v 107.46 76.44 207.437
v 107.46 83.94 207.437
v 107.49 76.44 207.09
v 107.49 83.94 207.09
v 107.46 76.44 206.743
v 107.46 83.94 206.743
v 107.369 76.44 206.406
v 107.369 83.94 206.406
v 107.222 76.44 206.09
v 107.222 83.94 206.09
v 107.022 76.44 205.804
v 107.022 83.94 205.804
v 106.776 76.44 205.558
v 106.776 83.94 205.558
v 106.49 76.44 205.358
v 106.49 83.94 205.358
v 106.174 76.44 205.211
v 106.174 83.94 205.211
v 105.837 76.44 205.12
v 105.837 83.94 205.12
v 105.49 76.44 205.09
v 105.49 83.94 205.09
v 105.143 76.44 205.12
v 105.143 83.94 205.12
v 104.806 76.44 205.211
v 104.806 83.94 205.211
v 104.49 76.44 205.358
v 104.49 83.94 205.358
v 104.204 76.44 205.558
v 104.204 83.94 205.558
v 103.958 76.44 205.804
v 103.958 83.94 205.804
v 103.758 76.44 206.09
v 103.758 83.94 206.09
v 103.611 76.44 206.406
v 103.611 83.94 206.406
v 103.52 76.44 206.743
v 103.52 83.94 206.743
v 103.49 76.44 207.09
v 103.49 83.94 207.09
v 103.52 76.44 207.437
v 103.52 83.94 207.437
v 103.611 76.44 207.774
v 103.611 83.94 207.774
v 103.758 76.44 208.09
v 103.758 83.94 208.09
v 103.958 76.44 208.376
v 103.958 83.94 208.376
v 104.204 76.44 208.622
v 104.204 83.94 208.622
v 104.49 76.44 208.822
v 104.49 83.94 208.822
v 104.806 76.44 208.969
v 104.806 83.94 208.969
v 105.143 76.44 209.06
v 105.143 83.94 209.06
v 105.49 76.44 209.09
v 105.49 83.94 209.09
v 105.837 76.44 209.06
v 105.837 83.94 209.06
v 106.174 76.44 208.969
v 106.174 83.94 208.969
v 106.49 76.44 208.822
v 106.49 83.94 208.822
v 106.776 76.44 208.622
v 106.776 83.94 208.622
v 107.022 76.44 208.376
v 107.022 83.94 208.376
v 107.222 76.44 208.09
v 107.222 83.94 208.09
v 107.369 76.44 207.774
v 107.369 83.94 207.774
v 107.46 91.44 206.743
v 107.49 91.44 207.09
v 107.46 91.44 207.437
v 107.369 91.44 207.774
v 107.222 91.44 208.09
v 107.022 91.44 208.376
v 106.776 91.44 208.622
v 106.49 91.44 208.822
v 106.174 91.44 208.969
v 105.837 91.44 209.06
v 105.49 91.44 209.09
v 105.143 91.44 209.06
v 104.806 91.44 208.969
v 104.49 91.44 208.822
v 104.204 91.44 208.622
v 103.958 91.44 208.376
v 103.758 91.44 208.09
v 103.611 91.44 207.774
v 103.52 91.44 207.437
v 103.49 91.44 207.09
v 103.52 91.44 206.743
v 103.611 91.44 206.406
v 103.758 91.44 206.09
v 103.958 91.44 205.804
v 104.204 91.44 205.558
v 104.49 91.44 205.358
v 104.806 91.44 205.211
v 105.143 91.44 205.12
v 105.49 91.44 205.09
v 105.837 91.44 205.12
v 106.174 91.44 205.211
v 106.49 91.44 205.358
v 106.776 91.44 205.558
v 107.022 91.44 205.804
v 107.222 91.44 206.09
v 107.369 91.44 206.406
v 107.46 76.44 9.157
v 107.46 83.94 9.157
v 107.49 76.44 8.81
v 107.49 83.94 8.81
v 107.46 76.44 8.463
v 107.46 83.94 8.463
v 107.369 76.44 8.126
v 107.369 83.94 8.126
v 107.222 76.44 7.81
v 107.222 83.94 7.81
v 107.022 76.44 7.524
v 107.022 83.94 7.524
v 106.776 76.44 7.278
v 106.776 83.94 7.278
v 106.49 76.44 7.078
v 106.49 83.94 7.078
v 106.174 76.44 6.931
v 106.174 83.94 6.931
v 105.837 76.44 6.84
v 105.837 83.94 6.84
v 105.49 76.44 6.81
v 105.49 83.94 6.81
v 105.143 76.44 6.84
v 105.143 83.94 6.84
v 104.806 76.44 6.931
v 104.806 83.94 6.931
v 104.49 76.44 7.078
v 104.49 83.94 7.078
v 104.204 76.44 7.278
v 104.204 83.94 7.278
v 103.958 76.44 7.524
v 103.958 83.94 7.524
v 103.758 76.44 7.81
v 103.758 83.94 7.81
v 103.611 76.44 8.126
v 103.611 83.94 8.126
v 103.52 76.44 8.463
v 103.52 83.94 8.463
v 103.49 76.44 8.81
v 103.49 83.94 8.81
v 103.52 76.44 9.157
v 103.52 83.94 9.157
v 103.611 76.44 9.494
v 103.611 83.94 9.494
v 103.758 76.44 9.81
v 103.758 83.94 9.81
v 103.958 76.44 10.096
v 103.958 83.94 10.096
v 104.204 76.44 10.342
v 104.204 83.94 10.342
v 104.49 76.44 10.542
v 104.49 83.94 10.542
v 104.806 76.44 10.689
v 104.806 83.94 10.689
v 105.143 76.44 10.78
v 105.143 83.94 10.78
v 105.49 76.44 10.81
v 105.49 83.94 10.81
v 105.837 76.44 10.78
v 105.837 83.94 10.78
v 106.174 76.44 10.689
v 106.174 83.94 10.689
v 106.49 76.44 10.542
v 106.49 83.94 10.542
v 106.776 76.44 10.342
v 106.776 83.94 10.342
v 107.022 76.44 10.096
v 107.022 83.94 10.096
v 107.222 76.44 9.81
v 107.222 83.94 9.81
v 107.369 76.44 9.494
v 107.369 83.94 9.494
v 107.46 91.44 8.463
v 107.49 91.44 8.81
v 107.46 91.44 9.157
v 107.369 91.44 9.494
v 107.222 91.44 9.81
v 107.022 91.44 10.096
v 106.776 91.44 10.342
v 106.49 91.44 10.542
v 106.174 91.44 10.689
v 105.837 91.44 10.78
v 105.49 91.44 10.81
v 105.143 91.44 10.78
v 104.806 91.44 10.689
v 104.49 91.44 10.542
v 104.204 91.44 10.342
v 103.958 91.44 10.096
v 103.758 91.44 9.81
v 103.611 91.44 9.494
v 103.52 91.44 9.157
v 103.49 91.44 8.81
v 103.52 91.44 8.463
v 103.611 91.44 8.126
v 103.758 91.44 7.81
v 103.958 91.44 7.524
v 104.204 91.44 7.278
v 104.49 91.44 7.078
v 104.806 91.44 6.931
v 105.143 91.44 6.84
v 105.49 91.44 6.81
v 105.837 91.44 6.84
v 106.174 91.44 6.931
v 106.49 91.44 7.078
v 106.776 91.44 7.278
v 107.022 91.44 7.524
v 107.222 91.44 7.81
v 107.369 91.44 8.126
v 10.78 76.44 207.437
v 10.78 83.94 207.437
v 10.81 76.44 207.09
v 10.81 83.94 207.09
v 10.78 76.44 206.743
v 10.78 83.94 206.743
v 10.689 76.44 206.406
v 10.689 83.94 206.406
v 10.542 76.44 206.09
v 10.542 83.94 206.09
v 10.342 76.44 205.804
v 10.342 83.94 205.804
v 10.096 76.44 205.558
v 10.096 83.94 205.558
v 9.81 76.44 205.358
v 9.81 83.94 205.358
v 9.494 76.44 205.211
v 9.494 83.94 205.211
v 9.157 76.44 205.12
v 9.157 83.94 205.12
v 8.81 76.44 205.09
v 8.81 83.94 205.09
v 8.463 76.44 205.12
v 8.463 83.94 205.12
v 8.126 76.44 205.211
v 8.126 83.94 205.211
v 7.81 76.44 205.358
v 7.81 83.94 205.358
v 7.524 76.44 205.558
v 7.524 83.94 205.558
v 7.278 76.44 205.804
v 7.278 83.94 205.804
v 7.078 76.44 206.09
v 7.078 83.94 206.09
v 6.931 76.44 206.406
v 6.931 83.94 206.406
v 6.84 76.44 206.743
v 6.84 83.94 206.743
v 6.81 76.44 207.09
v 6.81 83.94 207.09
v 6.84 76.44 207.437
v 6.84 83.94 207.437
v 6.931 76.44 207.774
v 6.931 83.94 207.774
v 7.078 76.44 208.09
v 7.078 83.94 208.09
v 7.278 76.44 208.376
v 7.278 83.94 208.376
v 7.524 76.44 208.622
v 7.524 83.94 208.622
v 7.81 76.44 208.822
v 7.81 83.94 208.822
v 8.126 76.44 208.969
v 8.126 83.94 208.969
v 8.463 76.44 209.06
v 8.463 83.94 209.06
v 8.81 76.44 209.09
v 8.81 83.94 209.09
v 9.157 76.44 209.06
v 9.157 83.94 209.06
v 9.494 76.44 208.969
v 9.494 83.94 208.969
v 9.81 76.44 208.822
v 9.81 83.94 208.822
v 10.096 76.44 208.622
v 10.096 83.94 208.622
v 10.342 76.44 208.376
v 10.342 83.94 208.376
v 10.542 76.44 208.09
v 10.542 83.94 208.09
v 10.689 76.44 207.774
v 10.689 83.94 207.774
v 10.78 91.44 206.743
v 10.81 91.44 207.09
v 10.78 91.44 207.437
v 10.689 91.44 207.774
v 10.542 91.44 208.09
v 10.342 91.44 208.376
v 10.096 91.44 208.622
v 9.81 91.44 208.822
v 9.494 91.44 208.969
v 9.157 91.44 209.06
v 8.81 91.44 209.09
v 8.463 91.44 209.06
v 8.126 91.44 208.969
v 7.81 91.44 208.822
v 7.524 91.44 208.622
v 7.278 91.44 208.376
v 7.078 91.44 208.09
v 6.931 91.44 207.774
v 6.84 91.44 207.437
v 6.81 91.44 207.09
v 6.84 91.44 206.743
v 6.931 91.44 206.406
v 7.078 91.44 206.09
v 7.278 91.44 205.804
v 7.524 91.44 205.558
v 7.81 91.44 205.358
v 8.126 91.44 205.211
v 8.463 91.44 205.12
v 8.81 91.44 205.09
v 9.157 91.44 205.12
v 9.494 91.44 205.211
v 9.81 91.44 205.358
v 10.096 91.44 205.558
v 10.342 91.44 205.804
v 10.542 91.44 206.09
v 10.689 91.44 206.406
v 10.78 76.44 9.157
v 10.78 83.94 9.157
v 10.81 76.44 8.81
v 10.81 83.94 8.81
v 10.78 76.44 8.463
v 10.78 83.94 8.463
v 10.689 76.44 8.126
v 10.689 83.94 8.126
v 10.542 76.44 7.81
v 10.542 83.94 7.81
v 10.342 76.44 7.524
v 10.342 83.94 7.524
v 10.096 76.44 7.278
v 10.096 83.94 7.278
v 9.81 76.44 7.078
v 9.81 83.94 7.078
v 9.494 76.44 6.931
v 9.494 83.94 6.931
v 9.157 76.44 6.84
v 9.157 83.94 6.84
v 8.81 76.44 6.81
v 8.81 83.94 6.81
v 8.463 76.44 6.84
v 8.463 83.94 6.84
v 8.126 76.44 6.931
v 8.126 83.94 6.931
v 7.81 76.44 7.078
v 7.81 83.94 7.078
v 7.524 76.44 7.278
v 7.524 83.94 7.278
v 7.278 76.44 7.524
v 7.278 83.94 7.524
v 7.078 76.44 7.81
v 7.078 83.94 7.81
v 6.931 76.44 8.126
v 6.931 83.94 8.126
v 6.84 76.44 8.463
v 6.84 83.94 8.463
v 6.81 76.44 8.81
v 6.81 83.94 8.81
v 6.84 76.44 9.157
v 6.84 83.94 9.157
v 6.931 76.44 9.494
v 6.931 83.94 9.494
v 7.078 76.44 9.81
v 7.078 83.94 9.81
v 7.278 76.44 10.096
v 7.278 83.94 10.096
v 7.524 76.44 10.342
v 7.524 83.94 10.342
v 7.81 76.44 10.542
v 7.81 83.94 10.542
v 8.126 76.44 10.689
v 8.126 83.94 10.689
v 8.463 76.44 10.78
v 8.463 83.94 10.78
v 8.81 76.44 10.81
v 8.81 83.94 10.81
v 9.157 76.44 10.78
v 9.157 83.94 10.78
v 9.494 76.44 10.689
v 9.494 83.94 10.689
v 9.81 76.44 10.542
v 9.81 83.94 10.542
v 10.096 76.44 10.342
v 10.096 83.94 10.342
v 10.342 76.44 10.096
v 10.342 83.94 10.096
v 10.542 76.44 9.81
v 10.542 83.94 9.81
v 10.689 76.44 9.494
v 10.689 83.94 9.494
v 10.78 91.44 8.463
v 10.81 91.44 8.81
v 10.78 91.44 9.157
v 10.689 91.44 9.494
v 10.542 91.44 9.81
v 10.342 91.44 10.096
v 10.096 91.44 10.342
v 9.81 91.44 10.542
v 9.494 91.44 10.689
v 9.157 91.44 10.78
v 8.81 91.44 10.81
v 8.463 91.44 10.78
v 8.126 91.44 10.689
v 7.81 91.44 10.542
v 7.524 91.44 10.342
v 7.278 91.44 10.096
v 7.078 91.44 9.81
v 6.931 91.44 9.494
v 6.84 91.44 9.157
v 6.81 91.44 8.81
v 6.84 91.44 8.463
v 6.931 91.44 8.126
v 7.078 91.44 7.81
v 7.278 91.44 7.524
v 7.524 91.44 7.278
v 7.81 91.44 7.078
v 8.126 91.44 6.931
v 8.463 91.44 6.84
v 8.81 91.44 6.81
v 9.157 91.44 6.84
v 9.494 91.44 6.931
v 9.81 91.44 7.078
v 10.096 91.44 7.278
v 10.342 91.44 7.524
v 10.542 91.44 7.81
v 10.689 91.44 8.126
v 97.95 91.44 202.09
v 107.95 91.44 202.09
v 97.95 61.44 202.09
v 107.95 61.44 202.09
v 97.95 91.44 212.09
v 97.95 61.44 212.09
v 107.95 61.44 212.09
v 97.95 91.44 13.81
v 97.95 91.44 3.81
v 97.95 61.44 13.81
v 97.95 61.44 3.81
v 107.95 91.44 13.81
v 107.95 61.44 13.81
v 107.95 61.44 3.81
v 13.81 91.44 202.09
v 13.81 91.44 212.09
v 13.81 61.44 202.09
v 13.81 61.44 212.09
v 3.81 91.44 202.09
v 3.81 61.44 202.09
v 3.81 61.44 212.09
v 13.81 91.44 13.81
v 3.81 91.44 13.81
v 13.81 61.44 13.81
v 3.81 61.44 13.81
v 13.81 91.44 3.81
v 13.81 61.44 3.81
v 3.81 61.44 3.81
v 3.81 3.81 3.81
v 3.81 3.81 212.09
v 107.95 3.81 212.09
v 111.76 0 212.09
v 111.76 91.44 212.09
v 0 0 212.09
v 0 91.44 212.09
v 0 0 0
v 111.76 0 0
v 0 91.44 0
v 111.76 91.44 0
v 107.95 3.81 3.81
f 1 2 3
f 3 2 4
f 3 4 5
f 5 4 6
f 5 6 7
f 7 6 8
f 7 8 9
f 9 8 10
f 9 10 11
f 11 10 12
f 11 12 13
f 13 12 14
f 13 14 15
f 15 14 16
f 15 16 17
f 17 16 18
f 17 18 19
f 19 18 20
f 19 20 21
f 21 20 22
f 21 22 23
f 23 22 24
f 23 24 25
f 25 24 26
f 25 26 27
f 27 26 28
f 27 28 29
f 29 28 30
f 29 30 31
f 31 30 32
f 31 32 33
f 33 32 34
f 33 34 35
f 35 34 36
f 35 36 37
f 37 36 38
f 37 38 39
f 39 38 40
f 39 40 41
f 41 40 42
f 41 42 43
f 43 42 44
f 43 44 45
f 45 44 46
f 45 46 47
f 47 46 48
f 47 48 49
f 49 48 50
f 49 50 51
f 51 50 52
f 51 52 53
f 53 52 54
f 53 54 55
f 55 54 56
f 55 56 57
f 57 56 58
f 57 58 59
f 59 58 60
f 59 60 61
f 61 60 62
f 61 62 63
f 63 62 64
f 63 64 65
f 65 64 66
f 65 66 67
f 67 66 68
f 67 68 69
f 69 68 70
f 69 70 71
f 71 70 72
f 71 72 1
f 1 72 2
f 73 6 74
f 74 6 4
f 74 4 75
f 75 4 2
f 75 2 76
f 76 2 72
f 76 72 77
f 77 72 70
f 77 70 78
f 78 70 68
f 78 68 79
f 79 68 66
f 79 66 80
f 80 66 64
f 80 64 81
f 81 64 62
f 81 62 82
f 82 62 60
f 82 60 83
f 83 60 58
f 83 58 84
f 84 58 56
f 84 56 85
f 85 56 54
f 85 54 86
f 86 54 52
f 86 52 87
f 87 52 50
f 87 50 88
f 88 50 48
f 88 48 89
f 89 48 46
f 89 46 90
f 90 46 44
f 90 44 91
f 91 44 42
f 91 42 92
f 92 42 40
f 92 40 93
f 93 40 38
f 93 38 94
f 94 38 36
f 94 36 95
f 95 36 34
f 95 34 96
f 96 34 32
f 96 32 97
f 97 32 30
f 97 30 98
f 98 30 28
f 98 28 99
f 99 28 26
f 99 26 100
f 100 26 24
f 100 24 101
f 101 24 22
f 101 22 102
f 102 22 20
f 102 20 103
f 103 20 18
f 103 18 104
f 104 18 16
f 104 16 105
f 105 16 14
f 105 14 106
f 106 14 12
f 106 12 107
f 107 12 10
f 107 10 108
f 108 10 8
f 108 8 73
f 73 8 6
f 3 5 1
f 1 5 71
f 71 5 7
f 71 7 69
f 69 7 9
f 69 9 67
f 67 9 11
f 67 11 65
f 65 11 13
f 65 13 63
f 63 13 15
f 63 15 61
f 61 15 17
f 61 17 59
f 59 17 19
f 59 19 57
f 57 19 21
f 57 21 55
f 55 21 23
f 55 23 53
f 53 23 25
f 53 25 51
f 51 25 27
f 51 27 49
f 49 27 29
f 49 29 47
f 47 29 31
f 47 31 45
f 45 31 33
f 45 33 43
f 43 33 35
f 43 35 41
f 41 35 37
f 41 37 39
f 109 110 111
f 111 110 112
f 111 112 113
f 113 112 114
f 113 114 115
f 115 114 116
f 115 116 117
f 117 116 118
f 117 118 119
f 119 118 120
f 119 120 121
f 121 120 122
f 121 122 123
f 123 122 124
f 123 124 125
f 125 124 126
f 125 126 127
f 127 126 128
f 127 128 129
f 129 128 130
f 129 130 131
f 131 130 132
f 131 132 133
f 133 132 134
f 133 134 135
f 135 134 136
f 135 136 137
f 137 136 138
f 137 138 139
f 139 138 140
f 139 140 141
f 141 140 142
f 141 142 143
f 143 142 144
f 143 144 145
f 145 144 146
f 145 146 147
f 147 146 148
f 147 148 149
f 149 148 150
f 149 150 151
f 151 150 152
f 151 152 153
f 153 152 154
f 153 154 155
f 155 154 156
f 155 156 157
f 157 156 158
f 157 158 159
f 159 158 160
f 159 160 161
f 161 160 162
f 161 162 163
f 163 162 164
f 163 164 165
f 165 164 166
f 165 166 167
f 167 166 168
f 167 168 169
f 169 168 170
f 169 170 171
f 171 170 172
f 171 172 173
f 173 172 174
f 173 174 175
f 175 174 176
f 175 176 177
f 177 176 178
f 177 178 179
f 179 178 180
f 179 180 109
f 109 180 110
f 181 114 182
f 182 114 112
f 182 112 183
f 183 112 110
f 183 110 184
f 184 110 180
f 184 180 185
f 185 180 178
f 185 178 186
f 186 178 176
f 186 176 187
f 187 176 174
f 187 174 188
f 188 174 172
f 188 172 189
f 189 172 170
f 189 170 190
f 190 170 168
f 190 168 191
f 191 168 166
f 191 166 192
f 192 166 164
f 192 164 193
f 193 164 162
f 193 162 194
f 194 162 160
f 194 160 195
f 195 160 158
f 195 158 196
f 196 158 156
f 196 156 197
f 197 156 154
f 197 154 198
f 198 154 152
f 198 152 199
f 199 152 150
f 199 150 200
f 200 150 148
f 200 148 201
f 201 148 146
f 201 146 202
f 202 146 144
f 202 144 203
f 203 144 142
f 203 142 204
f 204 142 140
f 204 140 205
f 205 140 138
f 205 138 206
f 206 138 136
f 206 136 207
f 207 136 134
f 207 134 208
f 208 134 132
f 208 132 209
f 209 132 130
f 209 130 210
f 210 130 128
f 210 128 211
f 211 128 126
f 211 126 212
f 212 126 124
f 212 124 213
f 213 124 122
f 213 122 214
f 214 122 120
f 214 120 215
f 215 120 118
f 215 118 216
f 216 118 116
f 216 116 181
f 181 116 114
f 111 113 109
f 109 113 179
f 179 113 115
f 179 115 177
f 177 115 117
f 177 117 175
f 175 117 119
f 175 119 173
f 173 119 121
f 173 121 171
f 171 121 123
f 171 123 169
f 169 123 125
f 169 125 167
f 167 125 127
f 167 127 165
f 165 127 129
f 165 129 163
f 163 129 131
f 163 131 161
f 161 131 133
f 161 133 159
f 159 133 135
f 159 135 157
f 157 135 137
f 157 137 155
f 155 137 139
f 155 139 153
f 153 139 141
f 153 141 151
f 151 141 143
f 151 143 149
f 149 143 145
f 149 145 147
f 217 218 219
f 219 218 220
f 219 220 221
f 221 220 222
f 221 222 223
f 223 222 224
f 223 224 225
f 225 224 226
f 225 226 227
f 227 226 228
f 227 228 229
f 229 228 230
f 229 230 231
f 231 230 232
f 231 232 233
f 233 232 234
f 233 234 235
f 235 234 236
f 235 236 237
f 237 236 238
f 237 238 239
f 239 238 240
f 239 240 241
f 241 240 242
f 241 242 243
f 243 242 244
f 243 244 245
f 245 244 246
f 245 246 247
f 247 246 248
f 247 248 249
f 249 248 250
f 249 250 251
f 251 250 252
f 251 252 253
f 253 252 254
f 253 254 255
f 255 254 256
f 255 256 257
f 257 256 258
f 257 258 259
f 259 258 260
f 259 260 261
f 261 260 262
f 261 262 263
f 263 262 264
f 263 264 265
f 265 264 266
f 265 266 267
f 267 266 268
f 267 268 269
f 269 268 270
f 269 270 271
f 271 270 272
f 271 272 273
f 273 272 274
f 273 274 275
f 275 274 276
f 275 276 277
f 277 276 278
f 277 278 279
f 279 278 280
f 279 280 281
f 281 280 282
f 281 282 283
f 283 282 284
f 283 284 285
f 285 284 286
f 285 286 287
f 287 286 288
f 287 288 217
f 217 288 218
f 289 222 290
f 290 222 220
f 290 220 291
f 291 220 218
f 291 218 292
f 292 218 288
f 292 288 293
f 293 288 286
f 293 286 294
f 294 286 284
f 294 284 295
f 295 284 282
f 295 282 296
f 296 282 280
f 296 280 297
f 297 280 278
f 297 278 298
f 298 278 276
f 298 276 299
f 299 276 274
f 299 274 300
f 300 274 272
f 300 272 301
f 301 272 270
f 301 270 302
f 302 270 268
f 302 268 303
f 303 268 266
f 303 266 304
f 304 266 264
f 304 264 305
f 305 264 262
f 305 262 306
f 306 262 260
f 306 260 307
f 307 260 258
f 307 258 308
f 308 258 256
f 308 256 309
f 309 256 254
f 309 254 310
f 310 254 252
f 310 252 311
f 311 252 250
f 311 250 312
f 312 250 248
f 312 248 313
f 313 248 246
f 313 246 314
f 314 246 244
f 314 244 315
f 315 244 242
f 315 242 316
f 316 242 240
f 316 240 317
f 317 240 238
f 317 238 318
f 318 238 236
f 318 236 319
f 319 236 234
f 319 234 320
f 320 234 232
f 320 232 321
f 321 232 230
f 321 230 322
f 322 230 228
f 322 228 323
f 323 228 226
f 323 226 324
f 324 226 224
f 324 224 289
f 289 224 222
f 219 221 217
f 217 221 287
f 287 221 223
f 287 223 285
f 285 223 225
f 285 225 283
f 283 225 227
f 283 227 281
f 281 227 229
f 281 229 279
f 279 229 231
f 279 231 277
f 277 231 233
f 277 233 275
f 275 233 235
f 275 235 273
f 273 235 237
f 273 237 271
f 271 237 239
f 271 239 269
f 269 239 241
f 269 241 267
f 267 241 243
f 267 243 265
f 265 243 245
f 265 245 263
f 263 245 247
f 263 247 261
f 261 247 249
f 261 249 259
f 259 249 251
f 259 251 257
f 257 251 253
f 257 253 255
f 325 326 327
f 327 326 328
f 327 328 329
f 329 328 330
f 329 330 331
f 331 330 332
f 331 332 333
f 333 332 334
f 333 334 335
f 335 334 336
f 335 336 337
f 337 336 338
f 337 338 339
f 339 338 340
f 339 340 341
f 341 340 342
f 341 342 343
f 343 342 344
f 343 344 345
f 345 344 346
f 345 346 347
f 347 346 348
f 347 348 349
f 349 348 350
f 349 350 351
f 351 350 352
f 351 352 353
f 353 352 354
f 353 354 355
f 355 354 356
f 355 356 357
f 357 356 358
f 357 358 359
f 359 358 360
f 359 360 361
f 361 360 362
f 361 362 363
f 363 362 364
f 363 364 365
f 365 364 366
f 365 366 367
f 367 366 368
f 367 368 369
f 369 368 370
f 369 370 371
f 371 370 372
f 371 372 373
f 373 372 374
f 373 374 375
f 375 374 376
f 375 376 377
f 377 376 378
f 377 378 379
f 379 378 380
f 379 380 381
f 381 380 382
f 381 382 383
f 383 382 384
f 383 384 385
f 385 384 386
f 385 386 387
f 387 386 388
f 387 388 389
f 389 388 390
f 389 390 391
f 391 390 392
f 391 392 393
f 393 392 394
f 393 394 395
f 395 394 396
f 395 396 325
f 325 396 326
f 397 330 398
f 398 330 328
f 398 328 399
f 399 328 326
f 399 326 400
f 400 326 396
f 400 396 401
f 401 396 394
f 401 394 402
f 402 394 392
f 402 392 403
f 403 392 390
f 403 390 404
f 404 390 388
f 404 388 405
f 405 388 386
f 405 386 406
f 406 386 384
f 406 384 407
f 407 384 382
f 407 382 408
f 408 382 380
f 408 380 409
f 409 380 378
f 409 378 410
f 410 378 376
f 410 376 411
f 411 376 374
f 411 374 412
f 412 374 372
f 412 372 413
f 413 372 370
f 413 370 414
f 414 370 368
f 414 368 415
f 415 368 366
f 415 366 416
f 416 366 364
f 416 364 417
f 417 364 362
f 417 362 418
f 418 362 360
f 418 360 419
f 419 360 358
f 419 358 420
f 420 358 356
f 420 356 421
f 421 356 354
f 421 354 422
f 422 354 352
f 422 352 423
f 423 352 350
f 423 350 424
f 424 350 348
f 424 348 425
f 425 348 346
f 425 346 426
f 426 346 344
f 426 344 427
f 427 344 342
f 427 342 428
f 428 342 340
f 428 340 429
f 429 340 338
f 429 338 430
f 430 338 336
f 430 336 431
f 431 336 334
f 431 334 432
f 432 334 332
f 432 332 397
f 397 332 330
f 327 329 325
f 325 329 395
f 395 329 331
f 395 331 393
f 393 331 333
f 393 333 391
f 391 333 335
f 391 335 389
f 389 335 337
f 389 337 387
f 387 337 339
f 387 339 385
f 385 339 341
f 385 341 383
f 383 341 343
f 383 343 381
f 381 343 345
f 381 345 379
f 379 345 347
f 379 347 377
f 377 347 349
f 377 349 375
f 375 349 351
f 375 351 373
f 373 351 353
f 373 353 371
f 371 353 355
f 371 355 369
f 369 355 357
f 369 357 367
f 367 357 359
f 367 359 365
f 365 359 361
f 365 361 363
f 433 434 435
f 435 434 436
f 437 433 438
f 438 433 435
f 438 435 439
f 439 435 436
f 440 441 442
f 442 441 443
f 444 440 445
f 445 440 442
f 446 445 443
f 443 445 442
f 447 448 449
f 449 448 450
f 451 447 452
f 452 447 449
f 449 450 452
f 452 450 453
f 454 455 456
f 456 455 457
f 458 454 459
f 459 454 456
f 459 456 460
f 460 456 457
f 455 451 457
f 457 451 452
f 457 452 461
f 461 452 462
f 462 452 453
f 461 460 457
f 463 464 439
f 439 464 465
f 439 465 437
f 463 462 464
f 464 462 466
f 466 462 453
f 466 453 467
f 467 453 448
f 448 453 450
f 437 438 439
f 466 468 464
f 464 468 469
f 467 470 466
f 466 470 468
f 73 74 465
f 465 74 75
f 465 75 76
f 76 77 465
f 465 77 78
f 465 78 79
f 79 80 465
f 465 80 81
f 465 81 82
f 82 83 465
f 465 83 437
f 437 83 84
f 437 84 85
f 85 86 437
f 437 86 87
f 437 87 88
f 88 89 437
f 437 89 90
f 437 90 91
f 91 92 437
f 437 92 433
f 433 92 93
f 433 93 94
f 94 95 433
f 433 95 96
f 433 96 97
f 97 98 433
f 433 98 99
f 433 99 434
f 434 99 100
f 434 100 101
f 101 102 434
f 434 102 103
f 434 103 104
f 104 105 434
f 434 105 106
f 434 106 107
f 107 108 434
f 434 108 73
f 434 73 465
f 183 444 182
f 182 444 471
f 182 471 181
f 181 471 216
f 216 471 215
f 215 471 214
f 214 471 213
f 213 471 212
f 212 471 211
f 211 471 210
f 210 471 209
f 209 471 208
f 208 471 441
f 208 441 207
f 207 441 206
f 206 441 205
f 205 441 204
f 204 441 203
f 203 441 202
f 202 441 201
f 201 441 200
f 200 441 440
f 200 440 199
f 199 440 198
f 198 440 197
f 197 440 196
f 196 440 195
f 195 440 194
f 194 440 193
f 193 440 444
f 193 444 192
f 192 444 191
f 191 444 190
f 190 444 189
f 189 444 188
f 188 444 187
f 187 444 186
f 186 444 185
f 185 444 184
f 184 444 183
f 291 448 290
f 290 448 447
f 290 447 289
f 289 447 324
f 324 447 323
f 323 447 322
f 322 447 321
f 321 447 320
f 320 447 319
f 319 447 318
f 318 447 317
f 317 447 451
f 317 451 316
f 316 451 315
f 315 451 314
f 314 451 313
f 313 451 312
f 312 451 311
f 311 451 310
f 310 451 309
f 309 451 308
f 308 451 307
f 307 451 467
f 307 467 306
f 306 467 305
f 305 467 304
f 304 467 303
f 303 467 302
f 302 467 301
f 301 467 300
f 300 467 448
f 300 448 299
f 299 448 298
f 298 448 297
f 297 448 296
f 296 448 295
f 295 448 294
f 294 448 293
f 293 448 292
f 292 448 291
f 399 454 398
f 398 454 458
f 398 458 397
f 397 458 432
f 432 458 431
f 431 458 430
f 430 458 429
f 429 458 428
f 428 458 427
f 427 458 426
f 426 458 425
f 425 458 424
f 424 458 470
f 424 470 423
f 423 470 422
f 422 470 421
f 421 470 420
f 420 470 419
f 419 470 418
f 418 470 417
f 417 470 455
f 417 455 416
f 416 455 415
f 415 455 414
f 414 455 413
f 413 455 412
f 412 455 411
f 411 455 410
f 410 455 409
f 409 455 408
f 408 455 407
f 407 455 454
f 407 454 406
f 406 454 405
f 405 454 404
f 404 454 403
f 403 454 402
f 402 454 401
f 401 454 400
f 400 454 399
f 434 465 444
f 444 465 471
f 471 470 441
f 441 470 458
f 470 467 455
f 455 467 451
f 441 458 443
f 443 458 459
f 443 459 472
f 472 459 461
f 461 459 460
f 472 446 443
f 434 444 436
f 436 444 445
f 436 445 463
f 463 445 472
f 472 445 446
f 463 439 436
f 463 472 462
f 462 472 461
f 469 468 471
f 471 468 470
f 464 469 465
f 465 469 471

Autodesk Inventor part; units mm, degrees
ref_plane "YZ Plane" through (0, 0, 0) normal (1, 0, 0) x (0, 1, 0)
ref_plane "XZ Plane" through (0, 0, 0) normal (0, 1, 0) x (-1, 0, 0)
ref_plane "XY Plane" through (0, 0, 0) normal (0, 0, 1) x (1, 0, 0)
sketch "Sketch1" plane through (0, 0, 0) normal (0, 1, 0) x (-1, 0, 0)
  line L0 (0, 0) -> (-111.76, 0)
  line L1 (-111.76, 0) -> (-111.76, 215.9)
  line L2 (-111.76, 215.9) -> (0, 215.9)
  line L3 (0, 215.9) -> (0, 0)
  dimension "d0" = 111.76
  dimension "d1" = 215.9
extrude "Extrusion1" add sketch "Sketch1" along normal blind 91.44
shell "Shell1" thickness 3.81 removed faces 1 at (37.2533, 91.44, 71.9667)
sketch "Sketch2" plane through (0, 0, 215.9) normal (0, 0, 1) x (1, 0, 0)
  line L0 (0, 0) -> (111.76, 0) projected
  line L1 (111.76, 0) -> (111.76, 91.44) projected
  line L2 (0, 91.44) -> (111.76, 91.44) projected
  line L3 (0, 0) -> (0, 91.44) projected
  point P0 (0, 0)
extrude "Extrusion2" cut sketch "Sketch2" against normal up to surface (3.81 mm away)
sketch "Sketch3" plane through (0, 0, 0) normal (0, -1, 0) x (1, 0, 0)
  line L0 (111.76, 212.09) -> (0, 212.09) projected
  line L1 (0, 0) -> (0, 212.09) projected
  line L2 (111.76, 212.09) -> (111.76, 0) projected
  line L3 (111.76, 212.09) -> (0, 212.09) projected
  line L4 (0, 0) -> (0, 212.09) projected
  line L5 (111.76, 0) -> (0, 0) projected
  line L6 (111.76, 212.09) -> (111.76, 0) projected
  line L7 (111.76, 212.09) -> (111.76, 0) projected
  line L8 (0, 0) -> (0, 212.09) projected
  spline S0 degree 4 poles (111.76, 85.3366) (95.0927, 139.8259) (66.5153, -13.509) (18.6749, 203.0999) (15.6726, 63.615) (0, 106.045) knots 0 0 0 0 0 0.532853 1 1 1 1 1
  point P0 (85.9461, 95.2827)
  point P1 (57.1117, 86.6573)
  point P2 (28.3059, 111.5489)
  point P3 (15.0905, 97.7863)
  point P4 (0, 106.045)
  point P5 (111.76, 85.3366)
sketch "Sketch4" plane through (0, 91.44, 0) normal (0, 1, 0) x (1, 0, 0)
  line L0 (3.81, -212.09) -> (3.81, -3.81) projected
  line L1 (3.81, -3.81) -> (107.95, -3.81) projected
  line L2 (107.95, -3.81) -> (107.95, -212.09) projected
  line L3 (107.95, -3.81) -> (3.81, -3.81) projected
  line L4 (3.81, -3.81) -> (13.81, -3.81)
  line L5 (13.81, -3.81) -> (13.81, -13.81)
  line L6 (13.81, -13.81) -> (3.81, -13.81)
  line L7 (3.81, -13.81) -> (3.81, -3.81)
  line L8 (107.95, -3.81) -> (97.95, -3.81)
  line L9 (97.95, -3.81) -> (97.95, -13.81)
  line L10 (97.95, -13.81) -> (107.95, -13.81)
  line L11 (107.95, -13.81) -> (107.95, -3.81)
  line L12 (107.95, -212.09) -> (107.95, -3.81) projected
  line L13 (107.95, -212.09) -> (97.95, -212.09)
  line L14 (97.95, -212.09) -> (97.95, -202.09)
  line L15 (97.95, -202.09) -> (107.95, -202.09)
  line L16 (107.95, -202.09) -> (107.95, -212.09)
  line L17 (3.81, -212.09) -> (13.81, -212.09)
  line L18 (13.81, -212.09) -> (13.81, -202.09)
  line L19 (13.81, -202.09) -> (3.81, -202.09)
  line L20 (3.81, -202.09) -> (3.81, -212.09)
  point P0 (3.81, -202.09)
  point P1 (97.95, -3.81)
  dimension "d9" = 10
  dimension "d10" = 10
  dimension "d11" = 10
  dimension "d12" = 10
  dimension "d13" = 10
  dimension "d14" = 10
  dimension "d15" = 10
  dimension "d16" = 10
extrude "Extrusion4" add sketch "Sketch4" against normal blind 30
sketch "Sketch5" plane through (0, 91.44, 0) normal (0, 1, 0) x (1, 0, 0)
  circle A0 centre (8.81, -8.81) radius 2
  circle A1 centre (105.49, -8.81) radius 2
  circle A2 centre (105.49, -207.09) radius 2
  circle A3 centre (8.81, -207.09) radius 2
  dimension "d19" = 4
  dimension "d20" = 4
  dimension "d21" = 4
  dimension "d22" = 4
extrude "Extrusion5" cut sketch "Sketch5" against normal blind 15
